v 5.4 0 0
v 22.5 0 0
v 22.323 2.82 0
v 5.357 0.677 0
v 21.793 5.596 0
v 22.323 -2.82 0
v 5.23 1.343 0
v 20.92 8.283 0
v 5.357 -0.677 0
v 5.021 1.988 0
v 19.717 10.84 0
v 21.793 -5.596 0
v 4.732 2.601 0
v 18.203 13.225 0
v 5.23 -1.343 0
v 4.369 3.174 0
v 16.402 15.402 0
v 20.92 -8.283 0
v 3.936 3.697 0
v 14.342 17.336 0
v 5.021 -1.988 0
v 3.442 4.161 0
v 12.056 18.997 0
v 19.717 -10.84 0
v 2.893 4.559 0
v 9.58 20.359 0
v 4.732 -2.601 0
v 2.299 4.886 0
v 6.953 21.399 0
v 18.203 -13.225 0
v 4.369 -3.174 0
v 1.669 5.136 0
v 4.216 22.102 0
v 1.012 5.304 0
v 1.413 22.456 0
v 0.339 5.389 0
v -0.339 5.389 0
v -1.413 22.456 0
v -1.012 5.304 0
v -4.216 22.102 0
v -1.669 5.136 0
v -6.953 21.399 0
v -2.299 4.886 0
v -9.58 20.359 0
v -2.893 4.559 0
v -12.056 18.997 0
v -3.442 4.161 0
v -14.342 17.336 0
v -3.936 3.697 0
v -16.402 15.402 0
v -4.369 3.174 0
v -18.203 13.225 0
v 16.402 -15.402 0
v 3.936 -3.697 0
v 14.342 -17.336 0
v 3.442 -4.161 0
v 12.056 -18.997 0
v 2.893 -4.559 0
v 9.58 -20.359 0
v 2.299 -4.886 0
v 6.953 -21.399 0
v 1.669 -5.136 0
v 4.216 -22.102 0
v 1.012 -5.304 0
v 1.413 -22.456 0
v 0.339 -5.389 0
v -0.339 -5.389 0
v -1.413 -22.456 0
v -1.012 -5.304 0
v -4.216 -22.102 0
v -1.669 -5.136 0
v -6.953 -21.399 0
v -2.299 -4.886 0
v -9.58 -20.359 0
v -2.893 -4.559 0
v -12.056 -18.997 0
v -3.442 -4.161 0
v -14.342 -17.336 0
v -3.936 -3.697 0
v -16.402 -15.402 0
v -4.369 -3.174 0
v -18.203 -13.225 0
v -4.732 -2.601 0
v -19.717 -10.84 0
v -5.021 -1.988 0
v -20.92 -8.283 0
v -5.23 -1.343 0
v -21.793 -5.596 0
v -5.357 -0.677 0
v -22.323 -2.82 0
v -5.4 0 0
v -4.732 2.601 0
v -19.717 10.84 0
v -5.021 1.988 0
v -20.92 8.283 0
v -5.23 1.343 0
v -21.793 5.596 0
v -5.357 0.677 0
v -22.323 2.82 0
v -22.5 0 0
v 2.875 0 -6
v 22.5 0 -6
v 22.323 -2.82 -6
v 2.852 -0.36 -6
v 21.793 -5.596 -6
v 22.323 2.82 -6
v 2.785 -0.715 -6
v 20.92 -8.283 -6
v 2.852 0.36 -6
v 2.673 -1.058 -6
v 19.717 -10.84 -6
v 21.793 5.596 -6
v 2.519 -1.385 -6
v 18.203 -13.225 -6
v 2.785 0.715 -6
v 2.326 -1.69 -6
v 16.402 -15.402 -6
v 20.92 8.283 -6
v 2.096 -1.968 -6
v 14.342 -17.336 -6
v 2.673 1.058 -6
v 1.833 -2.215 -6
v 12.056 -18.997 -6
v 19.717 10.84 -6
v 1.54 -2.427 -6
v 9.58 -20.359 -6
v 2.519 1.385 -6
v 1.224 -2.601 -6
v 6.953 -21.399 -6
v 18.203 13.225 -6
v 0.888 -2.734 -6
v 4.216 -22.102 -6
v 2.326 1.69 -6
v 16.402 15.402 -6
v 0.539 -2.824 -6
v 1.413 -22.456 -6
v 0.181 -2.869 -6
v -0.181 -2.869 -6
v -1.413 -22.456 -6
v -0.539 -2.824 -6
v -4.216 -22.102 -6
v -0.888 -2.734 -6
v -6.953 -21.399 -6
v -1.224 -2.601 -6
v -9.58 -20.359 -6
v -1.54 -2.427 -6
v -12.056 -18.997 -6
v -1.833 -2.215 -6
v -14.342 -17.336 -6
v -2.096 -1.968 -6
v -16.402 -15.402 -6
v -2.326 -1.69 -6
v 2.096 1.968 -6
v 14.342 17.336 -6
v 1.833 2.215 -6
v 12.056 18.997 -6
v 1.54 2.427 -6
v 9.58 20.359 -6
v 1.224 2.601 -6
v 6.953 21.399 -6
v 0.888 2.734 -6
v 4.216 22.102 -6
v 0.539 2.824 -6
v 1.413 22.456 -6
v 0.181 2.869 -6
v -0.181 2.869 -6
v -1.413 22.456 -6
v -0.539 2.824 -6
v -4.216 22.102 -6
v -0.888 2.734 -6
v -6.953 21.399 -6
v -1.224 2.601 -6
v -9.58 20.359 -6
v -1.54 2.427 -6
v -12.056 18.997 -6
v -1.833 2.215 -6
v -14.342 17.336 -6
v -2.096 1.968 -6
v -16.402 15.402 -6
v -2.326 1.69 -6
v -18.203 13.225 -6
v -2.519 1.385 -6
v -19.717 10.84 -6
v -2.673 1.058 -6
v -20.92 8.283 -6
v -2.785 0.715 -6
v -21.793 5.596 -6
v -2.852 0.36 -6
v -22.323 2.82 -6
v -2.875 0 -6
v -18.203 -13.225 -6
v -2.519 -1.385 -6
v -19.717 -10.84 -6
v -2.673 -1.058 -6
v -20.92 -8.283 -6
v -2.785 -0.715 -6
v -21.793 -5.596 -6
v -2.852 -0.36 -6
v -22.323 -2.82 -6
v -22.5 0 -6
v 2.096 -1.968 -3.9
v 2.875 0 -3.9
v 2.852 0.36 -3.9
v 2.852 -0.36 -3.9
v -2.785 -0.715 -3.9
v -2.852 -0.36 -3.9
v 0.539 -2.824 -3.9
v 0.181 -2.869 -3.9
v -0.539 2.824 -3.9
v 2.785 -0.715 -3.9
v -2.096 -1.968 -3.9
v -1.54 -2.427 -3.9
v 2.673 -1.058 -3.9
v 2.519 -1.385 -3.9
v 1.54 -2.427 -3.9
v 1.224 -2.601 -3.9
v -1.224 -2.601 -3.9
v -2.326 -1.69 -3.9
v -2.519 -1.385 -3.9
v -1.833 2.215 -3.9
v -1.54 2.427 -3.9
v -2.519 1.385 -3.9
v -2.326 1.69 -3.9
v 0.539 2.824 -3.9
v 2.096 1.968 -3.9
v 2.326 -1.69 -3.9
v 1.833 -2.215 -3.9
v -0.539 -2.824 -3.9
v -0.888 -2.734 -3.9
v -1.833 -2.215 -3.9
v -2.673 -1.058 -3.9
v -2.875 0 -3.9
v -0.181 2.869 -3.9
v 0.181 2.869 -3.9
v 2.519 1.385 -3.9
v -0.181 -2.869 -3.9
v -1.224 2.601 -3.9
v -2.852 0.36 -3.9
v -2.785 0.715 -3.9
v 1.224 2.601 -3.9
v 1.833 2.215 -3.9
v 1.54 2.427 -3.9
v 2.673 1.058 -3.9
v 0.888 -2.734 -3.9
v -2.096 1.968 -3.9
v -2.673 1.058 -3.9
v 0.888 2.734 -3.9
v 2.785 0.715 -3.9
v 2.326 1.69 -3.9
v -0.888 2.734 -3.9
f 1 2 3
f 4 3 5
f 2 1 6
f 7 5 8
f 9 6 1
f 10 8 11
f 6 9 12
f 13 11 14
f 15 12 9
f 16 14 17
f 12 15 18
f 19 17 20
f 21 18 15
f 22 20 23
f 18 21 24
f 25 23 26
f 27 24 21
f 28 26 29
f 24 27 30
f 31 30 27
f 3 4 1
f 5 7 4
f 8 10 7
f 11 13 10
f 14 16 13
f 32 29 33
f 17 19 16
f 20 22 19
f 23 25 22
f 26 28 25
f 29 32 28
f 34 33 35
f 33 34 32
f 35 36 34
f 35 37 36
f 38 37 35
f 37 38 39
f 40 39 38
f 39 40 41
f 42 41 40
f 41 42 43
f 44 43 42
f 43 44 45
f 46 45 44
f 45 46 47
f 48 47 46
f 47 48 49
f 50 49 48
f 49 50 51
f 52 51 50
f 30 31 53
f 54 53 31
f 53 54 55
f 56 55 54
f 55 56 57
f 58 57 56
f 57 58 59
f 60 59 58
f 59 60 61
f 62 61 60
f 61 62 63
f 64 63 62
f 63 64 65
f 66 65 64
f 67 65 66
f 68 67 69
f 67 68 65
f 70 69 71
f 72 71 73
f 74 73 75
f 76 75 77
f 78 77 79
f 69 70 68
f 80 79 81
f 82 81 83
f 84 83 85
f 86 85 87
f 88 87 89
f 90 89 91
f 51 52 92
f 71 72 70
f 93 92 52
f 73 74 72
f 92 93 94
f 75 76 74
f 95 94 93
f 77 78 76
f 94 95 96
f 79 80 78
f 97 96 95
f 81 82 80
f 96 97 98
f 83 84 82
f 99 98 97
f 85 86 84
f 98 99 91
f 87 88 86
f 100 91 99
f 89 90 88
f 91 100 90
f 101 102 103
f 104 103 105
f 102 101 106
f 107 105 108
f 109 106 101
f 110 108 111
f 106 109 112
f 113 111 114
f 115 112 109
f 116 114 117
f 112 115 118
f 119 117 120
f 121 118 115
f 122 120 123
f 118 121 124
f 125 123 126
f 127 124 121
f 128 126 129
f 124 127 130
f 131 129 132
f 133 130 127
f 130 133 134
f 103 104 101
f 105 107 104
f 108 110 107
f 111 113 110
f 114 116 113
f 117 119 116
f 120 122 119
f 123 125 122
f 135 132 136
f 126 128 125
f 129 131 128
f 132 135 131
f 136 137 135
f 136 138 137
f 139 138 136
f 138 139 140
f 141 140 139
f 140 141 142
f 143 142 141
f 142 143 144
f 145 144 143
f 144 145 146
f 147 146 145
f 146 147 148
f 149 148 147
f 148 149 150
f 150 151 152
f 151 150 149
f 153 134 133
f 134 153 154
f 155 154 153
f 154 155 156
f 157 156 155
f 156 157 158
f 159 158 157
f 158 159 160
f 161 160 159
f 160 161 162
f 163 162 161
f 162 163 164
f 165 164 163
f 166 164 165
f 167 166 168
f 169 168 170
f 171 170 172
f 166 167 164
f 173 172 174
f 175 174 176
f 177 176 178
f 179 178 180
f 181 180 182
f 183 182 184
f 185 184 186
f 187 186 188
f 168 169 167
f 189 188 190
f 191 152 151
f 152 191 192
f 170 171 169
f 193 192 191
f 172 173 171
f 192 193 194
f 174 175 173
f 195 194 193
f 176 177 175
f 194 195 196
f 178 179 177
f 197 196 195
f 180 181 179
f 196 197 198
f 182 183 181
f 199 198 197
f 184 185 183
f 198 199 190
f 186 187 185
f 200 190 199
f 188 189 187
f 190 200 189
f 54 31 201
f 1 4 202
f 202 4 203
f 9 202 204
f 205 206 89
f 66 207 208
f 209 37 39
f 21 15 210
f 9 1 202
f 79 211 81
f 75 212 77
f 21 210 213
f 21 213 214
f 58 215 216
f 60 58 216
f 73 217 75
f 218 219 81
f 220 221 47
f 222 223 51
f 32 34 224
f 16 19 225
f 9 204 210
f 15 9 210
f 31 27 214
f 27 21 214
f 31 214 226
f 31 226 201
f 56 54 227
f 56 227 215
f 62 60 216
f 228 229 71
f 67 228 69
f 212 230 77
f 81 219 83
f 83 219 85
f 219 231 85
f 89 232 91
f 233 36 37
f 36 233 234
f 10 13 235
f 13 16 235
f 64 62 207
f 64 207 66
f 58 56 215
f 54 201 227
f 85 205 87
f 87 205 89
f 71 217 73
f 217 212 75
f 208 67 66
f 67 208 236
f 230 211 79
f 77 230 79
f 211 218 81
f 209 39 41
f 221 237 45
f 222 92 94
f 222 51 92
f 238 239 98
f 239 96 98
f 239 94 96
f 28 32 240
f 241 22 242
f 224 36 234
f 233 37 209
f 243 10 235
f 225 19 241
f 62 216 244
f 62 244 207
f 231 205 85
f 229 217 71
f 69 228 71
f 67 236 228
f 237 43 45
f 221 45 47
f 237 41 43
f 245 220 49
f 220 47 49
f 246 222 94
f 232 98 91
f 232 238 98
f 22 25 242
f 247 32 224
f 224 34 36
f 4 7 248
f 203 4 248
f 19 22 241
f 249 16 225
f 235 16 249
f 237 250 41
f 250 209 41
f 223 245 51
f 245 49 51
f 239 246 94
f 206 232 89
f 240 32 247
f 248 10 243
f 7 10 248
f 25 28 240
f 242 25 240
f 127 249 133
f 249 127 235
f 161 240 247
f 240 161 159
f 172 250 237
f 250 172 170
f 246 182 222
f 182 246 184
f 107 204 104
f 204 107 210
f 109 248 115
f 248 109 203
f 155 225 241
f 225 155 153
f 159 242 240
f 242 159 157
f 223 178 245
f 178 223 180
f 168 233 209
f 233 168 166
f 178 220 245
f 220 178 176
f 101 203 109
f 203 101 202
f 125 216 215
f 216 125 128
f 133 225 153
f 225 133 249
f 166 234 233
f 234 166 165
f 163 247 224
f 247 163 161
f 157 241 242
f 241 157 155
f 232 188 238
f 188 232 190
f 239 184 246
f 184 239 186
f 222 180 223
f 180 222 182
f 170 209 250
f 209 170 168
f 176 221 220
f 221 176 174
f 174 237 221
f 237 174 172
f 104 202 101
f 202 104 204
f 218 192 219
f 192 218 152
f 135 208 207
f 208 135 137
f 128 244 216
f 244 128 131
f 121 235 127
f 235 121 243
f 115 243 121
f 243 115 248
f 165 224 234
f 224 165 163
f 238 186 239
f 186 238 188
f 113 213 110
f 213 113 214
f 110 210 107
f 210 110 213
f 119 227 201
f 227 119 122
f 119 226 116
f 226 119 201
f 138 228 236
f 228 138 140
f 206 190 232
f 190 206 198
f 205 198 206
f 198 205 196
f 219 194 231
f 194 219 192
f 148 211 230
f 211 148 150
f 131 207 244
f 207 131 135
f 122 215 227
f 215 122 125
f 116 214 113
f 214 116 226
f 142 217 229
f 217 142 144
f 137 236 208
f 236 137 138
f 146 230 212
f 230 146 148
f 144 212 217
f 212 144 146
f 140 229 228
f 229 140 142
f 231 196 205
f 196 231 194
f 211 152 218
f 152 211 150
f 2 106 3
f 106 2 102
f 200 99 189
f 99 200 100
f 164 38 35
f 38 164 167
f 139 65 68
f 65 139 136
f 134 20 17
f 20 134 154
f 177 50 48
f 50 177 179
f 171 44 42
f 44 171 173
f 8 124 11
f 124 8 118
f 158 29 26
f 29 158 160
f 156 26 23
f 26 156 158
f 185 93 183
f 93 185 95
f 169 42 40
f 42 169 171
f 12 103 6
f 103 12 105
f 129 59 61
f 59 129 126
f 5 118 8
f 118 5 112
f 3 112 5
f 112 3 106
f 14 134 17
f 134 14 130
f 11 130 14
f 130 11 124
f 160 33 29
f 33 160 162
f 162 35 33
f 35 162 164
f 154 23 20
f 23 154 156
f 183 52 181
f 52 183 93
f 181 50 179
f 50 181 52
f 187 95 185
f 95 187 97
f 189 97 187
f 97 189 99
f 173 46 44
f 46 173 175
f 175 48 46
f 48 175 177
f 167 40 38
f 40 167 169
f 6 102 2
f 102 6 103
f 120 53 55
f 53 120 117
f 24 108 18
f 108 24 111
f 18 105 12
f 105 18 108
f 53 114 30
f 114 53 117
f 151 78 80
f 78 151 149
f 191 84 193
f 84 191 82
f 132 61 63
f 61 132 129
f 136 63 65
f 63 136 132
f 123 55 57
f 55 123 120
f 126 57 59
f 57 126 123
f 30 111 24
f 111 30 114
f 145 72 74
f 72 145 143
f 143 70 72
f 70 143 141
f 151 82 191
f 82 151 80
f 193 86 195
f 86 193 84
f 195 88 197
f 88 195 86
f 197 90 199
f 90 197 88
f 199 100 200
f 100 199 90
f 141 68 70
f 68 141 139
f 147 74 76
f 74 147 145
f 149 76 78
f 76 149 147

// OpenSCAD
$fn = 50;


difference() {
	union() {
		translate(v = [0, 0, -6.0000000000]) {
			cylinder(h = 6, r = 22.5000000000);
		}
	}
	union() {
		translate(v = [0, 0, 0]) {
			rotate(a = [0, 0, 0]) {
				difference() {
					union() {
						translate(v = [0, 0, -6.0000000000]) {
							cylinder(h = 6, r = 2.6000000000);
						}
						translate(v = [0, 0, -3.9000000000]) {
							cylinder(h = 3.9000000000, r1 = 2.8750000000, r2 = 5.4000000000);
						}
						translate(v = [0, 0, -6.0000000000]) {
							cylinder(h = 6, r = 2.8750000000);
						}
						translate(v = [0, 0, -6.0000000000]) {
							cylinder(h = 6, r = 2.6000000000);
						}
					}
					union();
				}
			}
		}
	}
}
